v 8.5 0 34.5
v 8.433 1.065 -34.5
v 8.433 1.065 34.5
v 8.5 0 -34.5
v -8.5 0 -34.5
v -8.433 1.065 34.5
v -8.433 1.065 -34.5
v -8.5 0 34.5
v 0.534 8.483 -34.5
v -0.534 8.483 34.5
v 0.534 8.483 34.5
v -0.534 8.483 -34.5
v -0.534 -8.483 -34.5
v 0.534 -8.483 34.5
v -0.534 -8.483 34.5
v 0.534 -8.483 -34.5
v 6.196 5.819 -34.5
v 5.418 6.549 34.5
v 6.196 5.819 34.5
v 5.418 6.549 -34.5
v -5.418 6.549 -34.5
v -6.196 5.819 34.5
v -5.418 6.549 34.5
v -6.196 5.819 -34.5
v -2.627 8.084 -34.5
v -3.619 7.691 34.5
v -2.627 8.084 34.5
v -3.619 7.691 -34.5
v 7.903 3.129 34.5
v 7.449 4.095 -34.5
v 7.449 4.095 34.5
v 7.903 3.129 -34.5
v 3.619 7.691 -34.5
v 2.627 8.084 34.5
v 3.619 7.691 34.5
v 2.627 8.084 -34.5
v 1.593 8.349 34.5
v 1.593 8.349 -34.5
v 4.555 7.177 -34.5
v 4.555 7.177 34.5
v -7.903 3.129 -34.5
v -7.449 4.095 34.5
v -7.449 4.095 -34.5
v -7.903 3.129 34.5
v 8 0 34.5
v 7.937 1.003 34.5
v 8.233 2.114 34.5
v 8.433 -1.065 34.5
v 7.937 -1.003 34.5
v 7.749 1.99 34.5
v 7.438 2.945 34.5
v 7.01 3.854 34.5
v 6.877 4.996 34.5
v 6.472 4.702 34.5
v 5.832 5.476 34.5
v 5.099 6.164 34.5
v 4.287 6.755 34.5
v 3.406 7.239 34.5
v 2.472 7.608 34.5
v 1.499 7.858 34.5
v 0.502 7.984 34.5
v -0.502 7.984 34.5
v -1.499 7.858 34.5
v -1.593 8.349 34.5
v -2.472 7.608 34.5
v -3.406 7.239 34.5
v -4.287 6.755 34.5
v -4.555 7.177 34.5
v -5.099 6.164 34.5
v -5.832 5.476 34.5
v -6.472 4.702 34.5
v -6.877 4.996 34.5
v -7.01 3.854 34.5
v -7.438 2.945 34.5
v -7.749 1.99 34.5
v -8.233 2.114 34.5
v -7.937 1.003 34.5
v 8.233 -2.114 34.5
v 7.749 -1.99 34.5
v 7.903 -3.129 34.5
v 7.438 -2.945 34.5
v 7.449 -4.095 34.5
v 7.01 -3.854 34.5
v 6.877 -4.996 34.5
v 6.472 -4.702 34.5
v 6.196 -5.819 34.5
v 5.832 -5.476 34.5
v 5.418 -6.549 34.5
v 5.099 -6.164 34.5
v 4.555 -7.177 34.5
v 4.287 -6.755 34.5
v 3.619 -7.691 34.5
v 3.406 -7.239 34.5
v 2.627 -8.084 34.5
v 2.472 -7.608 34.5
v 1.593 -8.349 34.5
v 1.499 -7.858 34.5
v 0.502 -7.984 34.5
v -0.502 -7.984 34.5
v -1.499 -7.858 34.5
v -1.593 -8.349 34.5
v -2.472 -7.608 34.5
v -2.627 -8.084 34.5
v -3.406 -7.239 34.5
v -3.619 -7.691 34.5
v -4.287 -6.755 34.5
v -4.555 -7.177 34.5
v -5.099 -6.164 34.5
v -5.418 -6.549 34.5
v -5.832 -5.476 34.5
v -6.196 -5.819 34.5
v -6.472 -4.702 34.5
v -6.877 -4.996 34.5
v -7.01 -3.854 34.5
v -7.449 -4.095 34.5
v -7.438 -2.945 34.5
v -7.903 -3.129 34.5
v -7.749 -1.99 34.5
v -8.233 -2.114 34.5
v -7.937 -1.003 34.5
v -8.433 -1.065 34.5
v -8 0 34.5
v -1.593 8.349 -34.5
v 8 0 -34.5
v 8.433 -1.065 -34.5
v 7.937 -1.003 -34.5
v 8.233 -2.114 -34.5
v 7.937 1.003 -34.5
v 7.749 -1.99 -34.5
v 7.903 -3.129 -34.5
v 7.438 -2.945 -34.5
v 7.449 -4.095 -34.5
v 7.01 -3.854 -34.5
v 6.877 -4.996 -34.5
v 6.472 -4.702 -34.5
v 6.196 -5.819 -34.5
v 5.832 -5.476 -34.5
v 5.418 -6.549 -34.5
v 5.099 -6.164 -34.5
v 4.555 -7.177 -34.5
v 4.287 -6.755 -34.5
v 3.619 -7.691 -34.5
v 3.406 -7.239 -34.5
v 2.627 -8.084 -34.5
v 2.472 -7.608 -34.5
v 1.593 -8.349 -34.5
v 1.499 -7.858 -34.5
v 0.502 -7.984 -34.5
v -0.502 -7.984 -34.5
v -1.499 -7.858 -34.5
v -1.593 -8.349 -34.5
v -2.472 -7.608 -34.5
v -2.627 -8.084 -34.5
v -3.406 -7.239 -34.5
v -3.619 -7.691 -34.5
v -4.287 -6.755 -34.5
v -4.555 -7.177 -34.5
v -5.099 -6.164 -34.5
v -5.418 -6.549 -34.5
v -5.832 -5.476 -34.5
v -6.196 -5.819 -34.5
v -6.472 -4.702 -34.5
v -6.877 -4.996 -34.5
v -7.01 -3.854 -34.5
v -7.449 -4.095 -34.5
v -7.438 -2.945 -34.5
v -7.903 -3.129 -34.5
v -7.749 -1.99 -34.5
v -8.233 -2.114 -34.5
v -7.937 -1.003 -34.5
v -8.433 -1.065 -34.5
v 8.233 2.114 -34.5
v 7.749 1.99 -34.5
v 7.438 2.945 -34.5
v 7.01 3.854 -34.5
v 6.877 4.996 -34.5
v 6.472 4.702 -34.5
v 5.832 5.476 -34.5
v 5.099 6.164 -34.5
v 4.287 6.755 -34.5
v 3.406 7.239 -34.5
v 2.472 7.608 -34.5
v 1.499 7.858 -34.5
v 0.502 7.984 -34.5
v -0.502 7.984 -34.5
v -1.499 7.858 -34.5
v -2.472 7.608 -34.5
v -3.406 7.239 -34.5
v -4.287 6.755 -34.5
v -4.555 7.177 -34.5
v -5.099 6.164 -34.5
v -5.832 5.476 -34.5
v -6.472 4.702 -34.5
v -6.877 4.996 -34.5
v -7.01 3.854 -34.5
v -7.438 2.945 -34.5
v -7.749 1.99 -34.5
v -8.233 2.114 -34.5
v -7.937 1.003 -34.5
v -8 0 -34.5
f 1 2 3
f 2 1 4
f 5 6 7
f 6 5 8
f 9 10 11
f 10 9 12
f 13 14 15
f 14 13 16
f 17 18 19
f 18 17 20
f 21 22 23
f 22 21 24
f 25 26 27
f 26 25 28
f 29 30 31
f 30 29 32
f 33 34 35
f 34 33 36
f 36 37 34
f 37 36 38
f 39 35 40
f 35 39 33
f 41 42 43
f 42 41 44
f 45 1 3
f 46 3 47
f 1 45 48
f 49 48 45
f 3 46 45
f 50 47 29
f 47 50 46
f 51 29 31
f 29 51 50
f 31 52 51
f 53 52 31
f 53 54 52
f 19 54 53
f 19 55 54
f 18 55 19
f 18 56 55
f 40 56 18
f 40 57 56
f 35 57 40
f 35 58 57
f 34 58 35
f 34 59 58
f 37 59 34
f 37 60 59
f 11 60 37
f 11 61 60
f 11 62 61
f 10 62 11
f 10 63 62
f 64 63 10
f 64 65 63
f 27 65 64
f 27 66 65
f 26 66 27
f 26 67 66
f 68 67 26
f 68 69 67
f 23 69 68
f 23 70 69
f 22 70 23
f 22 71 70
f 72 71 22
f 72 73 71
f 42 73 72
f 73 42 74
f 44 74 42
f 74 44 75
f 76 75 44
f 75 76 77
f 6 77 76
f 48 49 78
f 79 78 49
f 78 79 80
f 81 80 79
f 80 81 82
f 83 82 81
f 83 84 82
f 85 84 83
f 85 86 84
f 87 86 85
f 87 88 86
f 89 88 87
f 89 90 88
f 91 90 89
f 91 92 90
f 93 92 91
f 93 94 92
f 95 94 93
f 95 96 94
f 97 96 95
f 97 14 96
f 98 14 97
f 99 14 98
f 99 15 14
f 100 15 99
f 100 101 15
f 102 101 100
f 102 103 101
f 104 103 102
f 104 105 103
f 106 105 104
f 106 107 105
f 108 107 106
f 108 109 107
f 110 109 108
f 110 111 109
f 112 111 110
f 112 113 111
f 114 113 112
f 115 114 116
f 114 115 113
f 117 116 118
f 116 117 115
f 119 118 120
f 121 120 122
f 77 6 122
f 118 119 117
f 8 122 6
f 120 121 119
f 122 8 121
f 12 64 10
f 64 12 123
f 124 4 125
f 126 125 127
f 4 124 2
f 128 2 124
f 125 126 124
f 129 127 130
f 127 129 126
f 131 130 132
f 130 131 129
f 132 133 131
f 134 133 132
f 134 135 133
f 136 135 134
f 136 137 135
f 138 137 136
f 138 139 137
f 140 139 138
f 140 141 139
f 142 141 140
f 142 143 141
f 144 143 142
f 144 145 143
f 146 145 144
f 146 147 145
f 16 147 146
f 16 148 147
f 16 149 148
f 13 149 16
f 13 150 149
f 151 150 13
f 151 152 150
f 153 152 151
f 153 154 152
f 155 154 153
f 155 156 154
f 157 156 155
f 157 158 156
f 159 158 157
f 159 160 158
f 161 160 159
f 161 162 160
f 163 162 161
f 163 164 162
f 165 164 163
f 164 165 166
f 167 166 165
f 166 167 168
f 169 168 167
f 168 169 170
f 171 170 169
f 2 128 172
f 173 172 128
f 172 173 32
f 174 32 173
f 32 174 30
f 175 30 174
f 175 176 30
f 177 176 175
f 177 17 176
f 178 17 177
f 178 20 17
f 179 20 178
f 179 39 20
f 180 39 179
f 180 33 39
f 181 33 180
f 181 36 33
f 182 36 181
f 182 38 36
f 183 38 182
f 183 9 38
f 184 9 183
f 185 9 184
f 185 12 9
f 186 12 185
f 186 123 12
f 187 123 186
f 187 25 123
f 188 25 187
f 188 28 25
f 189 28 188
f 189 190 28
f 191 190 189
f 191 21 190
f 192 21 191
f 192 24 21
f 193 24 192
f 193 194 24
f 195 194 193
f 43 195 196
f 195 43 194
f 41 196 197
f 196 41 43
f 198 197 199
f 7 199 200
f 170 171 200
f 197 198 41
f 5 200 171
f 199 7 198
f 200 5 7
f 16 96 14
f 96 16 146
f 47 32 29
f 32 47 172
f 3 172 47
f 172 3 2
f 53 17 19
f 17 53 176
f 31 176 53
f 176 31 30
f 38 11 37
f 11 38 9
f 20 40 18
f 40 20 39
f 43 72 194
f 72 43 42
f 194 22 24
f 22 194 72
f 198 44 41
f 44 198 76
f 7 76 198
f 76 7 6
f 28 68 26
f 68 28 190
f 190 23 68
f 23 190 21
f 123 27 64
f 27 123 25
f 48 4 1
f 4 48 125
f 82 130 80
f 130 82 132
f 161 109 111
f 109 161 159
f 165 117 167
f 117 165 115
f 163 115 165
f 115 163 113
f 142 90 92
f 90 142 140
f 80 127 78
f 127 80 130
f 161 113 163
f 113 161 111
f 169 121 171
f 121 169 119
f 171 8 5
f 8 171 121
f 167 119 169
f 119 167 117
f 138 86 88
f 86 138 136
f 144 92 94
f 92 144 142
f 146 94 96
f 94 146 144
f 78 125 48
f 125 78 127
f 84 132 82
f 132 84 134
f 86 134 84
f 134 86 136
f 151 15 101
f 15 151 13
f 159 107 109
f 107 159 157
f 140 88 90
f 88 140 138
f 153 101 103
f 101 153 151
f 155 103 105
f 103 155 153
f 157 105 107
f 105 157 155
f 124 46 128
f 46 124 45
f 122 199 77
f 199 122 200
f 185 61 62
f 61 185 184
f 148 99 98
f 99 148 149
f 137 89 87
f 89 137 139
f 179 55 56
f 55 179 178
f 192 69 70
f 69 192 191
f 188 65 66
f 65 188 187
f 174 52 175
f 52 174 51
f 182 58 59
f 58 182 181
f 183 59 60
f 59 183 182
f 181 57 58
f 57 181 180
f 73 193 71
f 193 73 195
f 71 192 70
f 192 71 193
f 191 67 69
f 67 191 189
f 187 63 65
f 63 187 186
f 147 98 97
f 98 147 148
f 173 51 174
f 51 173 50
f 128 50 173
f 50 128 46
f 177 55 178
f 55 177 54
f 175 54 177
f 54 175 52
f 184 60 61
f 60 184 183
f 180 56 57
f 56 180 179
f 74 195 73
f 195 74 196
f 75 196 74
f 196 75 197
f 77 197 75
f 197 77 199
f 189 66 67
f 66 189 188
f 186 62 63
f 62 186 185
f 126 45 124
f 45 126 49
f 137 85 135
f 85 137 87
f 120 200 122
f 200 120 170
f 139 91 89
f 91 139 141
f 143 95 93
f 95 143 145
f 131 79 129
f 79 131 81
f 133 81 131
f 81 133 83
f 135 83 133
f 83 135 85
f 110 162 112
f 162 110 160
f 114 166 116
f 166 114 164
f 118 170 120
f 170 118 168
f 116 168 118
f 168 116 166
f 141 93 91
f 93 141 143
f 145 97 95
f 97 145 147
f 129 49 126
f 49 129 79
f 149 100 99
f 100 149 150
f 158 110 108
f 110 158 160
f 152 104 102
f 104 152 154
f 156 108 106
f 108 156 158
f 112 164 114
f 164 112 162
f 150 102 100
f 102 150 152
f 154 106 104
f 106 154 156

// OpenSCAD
$fn = 50;


difference() {
	union() {
		translate(v = [0, 0, -34.5000000000]) {
			cylinder(h = 69, r = 8.5000000000);
		}
	}
	union() {
		translate(v = [0, 0, -100.0000000000]) {
			cylinder(h = 200, r = 8);
		}
	}
}
